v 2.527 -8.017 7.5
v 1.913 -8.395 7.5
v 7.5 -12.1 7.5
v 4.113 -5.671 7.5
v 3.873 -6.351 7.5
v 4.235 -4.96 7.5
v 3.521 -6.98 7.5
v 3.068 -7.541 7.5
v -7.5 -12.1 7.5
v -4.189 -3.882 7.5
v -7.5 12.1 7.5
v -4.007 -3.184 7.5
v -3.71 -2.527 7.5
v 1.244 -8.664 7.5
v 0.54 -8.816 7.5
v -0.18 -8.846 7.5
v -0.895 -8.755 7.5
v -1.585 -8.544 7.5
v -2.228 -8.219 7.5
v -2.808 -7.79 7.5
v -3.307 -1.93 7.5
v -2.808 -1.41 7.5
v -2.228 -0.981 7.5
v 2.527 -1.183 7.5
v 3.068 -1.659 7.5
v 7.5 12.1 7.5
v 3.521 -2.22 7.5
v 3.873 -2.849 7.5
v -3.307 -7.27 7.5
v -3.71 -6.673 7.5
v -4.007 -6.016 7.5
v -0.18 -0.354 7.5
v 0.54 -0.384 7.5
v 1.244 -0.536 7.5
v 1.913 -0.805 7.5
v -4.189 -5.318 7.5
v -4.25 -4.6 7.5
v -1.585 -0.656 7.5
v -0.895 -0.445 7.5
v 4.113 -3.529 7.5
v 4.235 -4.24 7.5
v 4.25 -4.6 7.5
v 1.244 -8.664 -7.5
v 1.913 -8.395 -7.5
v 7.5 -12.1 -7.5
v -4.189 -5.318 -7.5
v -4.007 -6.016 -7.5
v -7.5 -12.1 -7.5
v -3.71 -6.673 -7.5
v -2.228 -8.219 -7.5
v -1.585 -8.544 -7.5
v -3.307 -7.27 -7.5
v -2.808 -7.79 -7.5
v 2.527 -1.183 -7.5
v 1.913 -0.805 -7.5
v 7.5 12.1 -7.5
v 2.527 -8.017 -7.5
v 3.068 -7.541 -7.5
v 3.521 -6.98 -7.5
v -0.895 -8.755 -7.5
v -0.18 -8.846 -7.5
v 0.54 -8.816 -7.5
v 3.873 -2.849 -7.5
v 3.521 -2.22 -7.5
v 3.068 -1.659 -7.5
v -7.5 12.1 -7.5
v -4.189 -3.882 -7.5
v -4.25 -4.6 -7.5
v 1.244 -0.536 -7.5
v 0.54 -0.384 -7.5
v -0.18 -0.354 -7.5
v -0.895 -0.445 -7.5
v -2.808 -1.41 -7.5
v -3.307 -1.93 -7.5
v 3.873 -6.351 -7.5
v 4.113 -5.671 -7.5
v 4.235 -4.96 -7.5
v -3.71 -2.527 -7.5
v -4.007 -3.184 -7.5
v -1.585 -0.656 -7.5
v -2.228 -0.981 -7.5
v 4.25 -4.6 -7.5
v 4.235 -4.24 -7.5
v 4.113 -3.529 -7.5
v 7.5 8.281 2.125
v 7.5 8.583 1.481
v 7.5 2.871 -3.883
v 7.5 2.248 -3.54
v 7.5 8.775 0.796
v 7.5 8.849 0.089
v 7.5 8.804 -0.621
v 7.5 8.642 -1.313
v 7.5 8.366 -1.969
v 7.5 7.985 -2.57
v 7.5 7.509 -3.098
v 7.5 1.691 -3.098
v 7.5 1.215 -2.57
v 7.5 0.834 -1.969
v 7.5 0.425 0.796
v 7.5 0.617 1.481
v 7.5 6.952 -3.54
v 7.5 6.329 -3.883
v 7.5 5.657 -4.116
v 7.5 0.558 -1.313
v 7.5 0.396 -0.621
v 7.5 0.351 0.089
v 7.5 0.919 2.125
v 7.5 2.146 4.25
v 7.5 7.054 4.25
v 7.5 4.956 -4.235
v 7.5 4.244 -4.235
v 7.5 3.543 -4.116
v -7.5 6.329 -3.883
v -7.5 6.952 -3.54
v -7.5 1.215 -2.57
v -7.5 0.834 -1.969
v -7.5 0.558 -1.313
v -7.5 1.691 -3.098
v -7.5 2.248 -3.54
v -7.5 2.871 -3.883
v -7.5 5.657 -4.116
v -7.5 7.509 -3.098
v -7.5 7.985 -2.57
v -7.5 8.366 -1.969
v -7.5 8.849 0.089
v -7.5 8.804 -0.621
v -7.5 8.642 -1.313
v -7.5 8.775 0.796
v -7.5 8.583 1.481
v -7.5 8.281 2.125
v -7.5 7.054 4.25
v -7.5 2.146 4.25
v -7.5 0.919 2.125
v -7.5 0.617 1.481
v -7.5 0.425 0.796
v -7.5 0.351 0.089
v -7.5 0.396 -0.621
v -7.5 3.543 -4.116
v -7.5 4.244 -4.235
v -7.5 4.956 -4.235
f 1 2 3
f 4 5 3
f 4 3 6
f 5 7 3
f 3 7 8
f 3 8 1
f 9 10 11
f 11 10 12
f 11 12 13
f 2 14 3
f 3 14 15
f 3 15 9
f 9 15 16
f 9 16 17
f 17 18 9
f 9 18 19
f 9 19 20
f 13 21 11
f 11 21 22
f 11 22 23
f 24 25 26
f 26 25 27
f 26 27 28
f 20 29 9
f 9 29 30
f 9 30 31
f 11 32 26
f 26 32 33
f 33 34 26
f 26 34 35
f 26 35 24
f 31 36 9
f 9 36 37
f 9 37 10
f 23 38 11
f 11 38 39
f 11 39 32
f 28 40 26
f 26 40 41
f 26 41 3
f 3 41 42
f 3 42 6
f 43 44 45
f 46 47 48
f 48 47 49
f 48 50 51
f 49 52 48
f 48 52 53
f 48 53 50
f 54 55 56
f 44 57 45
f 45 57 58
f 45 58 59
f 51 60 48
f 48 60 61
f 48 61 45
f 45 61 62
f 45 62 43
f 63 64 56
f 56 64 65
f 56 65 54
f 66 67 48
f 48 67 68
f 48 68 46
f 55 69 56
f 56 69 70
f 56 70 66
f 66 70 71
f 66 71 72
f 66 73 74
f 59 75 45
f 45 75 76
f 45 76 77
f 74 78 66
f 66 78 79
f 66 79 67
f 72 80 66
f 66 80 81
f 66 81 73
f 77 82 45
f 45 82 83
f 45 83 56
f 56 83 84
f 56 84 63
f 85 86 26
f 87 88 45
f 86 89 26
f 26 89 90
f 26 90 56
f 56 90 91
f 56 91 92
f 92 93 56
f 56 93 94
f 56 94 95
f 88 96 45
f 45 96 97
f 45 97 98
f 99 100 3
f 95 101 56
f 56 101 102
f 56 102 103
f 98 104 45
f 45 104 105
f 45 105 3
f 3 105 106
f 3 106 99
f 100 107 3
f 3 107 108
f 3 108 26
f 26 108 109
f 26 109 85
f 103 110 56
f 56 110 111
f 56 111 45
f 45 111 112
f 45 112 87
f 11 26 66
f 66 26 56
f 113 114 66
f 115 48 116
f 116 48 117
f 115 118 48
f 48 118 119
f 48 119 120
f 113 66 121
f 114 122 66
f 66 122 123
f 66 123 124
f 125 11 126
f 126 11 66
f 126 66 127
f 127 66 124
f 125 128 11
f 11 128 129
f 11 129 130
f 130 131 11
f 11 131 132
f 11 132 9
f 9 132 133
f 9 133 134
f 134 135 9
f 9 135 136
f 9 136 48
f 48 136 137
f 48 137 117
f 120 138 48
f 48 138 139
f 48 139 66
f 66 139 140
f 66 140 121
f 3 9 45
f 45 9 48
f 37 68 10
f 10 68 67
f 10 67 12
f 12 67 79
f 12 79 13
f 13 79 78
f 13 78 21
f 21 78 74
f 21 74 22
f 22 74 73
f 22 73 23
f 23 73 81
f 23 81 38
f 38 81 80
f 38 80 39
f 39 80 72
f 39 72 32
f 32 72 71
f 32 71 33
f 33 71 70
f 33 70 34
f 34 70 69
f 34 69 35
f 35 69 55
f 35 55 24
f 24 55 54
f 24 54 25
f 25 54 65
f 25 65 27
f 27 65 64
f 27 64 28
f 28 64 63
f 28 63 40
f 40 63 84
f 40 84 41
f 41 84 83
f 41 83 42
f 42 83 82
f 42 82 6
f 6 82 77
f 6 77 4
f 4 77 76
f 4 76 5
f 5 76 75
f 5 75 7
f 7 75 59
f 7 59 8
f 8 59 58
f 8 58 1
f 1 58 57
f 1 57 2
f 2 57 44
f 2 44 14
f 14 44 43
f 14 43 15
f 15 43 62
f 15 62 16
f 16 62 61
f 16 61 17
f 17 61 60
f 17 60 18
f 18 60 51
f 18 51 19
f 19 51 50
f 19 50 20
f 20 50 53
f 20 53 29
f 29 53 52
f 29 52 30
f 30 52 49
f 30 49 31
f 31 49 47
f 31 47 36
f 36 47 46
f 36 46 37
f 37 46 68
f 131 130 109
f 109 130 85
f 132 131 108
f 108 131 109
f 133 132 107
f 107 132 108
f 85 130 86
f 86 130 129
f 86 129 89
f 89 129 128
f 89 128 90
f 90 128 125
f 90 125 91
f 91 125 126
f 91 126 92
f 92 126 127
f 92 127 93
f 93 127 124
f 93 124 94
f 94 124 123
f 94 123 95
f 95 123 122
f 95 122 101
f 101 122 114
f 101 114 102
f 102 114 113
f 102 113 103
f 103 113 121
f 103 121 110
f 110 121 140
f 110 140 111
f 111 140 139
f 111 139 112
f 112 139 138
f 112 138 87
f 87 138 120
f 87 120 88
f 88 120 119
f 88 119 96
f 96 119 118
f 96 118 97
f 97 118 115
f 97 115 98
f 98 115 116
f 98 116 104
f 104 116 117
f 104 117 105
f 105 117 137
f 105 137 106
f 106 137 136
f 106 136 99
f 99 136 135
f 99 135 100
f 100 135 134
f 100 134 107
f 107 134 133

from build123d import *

# Parameters (mm, degrees)
SCHIZZO1_W                   = 15
SCHIZZO1_H                   = 24.2
SCHIZZO1_R                   = 4.25
ESTRUSIONE_ESTRUSIONE1_DEPTH = 7.5
TAGLIO_ESTRUSIONE1_REACH     = 22.68


with BuildPart() as part:
    # Schizzo1 → Estrusione-Estrusione1 (new, symmetric)
    with BuildSketch(Plane.XY):
        Rectangle(SCHIZZO1_W, SCHIZZO1_H)
        with Locations((0, -4.6)):
            Circle(SCHIZZO1_R, mode=Mode.SUBTRACT)
    extrude(amount=ESTRUSIONE_ESTRUSIONE1_DEPTH, both=True)

    # Schizzo2 → Taglio-Estrusione1 (cut, up to next)
    with BuildSketch(Plane.ZY.offset(7.5), mode=Mode.PRIVATE) as taglio_estrusione1_sk1:
        with BuildLine():
            Line((4.25, 2.146261356), (4.25, 7.053738644))
            Line((4.25, 7.053738644), (2.125, 8.280607966))
            ThreePointArc((2.125, 8.280607966), (-4.25, 4.6), (2.125, 0.919392034))
            Line((2.125, 0.919392034), (4.25, 2.146261356))
        make_face()
    taglio_estrusione1_tool1 = extrude(taglio_estrusione1_sk1.sketch, amount=-TAGLIO_ESTRUSIONE1_REACH, mode=Mode.PRIVATE) & part.part
    add(taglio_estrusione1_tool1.solids().sort_by_distance((-7.5, 4.6, 0.125868))[0], mode=Mode.SUBTRACT)


solid = part.part
